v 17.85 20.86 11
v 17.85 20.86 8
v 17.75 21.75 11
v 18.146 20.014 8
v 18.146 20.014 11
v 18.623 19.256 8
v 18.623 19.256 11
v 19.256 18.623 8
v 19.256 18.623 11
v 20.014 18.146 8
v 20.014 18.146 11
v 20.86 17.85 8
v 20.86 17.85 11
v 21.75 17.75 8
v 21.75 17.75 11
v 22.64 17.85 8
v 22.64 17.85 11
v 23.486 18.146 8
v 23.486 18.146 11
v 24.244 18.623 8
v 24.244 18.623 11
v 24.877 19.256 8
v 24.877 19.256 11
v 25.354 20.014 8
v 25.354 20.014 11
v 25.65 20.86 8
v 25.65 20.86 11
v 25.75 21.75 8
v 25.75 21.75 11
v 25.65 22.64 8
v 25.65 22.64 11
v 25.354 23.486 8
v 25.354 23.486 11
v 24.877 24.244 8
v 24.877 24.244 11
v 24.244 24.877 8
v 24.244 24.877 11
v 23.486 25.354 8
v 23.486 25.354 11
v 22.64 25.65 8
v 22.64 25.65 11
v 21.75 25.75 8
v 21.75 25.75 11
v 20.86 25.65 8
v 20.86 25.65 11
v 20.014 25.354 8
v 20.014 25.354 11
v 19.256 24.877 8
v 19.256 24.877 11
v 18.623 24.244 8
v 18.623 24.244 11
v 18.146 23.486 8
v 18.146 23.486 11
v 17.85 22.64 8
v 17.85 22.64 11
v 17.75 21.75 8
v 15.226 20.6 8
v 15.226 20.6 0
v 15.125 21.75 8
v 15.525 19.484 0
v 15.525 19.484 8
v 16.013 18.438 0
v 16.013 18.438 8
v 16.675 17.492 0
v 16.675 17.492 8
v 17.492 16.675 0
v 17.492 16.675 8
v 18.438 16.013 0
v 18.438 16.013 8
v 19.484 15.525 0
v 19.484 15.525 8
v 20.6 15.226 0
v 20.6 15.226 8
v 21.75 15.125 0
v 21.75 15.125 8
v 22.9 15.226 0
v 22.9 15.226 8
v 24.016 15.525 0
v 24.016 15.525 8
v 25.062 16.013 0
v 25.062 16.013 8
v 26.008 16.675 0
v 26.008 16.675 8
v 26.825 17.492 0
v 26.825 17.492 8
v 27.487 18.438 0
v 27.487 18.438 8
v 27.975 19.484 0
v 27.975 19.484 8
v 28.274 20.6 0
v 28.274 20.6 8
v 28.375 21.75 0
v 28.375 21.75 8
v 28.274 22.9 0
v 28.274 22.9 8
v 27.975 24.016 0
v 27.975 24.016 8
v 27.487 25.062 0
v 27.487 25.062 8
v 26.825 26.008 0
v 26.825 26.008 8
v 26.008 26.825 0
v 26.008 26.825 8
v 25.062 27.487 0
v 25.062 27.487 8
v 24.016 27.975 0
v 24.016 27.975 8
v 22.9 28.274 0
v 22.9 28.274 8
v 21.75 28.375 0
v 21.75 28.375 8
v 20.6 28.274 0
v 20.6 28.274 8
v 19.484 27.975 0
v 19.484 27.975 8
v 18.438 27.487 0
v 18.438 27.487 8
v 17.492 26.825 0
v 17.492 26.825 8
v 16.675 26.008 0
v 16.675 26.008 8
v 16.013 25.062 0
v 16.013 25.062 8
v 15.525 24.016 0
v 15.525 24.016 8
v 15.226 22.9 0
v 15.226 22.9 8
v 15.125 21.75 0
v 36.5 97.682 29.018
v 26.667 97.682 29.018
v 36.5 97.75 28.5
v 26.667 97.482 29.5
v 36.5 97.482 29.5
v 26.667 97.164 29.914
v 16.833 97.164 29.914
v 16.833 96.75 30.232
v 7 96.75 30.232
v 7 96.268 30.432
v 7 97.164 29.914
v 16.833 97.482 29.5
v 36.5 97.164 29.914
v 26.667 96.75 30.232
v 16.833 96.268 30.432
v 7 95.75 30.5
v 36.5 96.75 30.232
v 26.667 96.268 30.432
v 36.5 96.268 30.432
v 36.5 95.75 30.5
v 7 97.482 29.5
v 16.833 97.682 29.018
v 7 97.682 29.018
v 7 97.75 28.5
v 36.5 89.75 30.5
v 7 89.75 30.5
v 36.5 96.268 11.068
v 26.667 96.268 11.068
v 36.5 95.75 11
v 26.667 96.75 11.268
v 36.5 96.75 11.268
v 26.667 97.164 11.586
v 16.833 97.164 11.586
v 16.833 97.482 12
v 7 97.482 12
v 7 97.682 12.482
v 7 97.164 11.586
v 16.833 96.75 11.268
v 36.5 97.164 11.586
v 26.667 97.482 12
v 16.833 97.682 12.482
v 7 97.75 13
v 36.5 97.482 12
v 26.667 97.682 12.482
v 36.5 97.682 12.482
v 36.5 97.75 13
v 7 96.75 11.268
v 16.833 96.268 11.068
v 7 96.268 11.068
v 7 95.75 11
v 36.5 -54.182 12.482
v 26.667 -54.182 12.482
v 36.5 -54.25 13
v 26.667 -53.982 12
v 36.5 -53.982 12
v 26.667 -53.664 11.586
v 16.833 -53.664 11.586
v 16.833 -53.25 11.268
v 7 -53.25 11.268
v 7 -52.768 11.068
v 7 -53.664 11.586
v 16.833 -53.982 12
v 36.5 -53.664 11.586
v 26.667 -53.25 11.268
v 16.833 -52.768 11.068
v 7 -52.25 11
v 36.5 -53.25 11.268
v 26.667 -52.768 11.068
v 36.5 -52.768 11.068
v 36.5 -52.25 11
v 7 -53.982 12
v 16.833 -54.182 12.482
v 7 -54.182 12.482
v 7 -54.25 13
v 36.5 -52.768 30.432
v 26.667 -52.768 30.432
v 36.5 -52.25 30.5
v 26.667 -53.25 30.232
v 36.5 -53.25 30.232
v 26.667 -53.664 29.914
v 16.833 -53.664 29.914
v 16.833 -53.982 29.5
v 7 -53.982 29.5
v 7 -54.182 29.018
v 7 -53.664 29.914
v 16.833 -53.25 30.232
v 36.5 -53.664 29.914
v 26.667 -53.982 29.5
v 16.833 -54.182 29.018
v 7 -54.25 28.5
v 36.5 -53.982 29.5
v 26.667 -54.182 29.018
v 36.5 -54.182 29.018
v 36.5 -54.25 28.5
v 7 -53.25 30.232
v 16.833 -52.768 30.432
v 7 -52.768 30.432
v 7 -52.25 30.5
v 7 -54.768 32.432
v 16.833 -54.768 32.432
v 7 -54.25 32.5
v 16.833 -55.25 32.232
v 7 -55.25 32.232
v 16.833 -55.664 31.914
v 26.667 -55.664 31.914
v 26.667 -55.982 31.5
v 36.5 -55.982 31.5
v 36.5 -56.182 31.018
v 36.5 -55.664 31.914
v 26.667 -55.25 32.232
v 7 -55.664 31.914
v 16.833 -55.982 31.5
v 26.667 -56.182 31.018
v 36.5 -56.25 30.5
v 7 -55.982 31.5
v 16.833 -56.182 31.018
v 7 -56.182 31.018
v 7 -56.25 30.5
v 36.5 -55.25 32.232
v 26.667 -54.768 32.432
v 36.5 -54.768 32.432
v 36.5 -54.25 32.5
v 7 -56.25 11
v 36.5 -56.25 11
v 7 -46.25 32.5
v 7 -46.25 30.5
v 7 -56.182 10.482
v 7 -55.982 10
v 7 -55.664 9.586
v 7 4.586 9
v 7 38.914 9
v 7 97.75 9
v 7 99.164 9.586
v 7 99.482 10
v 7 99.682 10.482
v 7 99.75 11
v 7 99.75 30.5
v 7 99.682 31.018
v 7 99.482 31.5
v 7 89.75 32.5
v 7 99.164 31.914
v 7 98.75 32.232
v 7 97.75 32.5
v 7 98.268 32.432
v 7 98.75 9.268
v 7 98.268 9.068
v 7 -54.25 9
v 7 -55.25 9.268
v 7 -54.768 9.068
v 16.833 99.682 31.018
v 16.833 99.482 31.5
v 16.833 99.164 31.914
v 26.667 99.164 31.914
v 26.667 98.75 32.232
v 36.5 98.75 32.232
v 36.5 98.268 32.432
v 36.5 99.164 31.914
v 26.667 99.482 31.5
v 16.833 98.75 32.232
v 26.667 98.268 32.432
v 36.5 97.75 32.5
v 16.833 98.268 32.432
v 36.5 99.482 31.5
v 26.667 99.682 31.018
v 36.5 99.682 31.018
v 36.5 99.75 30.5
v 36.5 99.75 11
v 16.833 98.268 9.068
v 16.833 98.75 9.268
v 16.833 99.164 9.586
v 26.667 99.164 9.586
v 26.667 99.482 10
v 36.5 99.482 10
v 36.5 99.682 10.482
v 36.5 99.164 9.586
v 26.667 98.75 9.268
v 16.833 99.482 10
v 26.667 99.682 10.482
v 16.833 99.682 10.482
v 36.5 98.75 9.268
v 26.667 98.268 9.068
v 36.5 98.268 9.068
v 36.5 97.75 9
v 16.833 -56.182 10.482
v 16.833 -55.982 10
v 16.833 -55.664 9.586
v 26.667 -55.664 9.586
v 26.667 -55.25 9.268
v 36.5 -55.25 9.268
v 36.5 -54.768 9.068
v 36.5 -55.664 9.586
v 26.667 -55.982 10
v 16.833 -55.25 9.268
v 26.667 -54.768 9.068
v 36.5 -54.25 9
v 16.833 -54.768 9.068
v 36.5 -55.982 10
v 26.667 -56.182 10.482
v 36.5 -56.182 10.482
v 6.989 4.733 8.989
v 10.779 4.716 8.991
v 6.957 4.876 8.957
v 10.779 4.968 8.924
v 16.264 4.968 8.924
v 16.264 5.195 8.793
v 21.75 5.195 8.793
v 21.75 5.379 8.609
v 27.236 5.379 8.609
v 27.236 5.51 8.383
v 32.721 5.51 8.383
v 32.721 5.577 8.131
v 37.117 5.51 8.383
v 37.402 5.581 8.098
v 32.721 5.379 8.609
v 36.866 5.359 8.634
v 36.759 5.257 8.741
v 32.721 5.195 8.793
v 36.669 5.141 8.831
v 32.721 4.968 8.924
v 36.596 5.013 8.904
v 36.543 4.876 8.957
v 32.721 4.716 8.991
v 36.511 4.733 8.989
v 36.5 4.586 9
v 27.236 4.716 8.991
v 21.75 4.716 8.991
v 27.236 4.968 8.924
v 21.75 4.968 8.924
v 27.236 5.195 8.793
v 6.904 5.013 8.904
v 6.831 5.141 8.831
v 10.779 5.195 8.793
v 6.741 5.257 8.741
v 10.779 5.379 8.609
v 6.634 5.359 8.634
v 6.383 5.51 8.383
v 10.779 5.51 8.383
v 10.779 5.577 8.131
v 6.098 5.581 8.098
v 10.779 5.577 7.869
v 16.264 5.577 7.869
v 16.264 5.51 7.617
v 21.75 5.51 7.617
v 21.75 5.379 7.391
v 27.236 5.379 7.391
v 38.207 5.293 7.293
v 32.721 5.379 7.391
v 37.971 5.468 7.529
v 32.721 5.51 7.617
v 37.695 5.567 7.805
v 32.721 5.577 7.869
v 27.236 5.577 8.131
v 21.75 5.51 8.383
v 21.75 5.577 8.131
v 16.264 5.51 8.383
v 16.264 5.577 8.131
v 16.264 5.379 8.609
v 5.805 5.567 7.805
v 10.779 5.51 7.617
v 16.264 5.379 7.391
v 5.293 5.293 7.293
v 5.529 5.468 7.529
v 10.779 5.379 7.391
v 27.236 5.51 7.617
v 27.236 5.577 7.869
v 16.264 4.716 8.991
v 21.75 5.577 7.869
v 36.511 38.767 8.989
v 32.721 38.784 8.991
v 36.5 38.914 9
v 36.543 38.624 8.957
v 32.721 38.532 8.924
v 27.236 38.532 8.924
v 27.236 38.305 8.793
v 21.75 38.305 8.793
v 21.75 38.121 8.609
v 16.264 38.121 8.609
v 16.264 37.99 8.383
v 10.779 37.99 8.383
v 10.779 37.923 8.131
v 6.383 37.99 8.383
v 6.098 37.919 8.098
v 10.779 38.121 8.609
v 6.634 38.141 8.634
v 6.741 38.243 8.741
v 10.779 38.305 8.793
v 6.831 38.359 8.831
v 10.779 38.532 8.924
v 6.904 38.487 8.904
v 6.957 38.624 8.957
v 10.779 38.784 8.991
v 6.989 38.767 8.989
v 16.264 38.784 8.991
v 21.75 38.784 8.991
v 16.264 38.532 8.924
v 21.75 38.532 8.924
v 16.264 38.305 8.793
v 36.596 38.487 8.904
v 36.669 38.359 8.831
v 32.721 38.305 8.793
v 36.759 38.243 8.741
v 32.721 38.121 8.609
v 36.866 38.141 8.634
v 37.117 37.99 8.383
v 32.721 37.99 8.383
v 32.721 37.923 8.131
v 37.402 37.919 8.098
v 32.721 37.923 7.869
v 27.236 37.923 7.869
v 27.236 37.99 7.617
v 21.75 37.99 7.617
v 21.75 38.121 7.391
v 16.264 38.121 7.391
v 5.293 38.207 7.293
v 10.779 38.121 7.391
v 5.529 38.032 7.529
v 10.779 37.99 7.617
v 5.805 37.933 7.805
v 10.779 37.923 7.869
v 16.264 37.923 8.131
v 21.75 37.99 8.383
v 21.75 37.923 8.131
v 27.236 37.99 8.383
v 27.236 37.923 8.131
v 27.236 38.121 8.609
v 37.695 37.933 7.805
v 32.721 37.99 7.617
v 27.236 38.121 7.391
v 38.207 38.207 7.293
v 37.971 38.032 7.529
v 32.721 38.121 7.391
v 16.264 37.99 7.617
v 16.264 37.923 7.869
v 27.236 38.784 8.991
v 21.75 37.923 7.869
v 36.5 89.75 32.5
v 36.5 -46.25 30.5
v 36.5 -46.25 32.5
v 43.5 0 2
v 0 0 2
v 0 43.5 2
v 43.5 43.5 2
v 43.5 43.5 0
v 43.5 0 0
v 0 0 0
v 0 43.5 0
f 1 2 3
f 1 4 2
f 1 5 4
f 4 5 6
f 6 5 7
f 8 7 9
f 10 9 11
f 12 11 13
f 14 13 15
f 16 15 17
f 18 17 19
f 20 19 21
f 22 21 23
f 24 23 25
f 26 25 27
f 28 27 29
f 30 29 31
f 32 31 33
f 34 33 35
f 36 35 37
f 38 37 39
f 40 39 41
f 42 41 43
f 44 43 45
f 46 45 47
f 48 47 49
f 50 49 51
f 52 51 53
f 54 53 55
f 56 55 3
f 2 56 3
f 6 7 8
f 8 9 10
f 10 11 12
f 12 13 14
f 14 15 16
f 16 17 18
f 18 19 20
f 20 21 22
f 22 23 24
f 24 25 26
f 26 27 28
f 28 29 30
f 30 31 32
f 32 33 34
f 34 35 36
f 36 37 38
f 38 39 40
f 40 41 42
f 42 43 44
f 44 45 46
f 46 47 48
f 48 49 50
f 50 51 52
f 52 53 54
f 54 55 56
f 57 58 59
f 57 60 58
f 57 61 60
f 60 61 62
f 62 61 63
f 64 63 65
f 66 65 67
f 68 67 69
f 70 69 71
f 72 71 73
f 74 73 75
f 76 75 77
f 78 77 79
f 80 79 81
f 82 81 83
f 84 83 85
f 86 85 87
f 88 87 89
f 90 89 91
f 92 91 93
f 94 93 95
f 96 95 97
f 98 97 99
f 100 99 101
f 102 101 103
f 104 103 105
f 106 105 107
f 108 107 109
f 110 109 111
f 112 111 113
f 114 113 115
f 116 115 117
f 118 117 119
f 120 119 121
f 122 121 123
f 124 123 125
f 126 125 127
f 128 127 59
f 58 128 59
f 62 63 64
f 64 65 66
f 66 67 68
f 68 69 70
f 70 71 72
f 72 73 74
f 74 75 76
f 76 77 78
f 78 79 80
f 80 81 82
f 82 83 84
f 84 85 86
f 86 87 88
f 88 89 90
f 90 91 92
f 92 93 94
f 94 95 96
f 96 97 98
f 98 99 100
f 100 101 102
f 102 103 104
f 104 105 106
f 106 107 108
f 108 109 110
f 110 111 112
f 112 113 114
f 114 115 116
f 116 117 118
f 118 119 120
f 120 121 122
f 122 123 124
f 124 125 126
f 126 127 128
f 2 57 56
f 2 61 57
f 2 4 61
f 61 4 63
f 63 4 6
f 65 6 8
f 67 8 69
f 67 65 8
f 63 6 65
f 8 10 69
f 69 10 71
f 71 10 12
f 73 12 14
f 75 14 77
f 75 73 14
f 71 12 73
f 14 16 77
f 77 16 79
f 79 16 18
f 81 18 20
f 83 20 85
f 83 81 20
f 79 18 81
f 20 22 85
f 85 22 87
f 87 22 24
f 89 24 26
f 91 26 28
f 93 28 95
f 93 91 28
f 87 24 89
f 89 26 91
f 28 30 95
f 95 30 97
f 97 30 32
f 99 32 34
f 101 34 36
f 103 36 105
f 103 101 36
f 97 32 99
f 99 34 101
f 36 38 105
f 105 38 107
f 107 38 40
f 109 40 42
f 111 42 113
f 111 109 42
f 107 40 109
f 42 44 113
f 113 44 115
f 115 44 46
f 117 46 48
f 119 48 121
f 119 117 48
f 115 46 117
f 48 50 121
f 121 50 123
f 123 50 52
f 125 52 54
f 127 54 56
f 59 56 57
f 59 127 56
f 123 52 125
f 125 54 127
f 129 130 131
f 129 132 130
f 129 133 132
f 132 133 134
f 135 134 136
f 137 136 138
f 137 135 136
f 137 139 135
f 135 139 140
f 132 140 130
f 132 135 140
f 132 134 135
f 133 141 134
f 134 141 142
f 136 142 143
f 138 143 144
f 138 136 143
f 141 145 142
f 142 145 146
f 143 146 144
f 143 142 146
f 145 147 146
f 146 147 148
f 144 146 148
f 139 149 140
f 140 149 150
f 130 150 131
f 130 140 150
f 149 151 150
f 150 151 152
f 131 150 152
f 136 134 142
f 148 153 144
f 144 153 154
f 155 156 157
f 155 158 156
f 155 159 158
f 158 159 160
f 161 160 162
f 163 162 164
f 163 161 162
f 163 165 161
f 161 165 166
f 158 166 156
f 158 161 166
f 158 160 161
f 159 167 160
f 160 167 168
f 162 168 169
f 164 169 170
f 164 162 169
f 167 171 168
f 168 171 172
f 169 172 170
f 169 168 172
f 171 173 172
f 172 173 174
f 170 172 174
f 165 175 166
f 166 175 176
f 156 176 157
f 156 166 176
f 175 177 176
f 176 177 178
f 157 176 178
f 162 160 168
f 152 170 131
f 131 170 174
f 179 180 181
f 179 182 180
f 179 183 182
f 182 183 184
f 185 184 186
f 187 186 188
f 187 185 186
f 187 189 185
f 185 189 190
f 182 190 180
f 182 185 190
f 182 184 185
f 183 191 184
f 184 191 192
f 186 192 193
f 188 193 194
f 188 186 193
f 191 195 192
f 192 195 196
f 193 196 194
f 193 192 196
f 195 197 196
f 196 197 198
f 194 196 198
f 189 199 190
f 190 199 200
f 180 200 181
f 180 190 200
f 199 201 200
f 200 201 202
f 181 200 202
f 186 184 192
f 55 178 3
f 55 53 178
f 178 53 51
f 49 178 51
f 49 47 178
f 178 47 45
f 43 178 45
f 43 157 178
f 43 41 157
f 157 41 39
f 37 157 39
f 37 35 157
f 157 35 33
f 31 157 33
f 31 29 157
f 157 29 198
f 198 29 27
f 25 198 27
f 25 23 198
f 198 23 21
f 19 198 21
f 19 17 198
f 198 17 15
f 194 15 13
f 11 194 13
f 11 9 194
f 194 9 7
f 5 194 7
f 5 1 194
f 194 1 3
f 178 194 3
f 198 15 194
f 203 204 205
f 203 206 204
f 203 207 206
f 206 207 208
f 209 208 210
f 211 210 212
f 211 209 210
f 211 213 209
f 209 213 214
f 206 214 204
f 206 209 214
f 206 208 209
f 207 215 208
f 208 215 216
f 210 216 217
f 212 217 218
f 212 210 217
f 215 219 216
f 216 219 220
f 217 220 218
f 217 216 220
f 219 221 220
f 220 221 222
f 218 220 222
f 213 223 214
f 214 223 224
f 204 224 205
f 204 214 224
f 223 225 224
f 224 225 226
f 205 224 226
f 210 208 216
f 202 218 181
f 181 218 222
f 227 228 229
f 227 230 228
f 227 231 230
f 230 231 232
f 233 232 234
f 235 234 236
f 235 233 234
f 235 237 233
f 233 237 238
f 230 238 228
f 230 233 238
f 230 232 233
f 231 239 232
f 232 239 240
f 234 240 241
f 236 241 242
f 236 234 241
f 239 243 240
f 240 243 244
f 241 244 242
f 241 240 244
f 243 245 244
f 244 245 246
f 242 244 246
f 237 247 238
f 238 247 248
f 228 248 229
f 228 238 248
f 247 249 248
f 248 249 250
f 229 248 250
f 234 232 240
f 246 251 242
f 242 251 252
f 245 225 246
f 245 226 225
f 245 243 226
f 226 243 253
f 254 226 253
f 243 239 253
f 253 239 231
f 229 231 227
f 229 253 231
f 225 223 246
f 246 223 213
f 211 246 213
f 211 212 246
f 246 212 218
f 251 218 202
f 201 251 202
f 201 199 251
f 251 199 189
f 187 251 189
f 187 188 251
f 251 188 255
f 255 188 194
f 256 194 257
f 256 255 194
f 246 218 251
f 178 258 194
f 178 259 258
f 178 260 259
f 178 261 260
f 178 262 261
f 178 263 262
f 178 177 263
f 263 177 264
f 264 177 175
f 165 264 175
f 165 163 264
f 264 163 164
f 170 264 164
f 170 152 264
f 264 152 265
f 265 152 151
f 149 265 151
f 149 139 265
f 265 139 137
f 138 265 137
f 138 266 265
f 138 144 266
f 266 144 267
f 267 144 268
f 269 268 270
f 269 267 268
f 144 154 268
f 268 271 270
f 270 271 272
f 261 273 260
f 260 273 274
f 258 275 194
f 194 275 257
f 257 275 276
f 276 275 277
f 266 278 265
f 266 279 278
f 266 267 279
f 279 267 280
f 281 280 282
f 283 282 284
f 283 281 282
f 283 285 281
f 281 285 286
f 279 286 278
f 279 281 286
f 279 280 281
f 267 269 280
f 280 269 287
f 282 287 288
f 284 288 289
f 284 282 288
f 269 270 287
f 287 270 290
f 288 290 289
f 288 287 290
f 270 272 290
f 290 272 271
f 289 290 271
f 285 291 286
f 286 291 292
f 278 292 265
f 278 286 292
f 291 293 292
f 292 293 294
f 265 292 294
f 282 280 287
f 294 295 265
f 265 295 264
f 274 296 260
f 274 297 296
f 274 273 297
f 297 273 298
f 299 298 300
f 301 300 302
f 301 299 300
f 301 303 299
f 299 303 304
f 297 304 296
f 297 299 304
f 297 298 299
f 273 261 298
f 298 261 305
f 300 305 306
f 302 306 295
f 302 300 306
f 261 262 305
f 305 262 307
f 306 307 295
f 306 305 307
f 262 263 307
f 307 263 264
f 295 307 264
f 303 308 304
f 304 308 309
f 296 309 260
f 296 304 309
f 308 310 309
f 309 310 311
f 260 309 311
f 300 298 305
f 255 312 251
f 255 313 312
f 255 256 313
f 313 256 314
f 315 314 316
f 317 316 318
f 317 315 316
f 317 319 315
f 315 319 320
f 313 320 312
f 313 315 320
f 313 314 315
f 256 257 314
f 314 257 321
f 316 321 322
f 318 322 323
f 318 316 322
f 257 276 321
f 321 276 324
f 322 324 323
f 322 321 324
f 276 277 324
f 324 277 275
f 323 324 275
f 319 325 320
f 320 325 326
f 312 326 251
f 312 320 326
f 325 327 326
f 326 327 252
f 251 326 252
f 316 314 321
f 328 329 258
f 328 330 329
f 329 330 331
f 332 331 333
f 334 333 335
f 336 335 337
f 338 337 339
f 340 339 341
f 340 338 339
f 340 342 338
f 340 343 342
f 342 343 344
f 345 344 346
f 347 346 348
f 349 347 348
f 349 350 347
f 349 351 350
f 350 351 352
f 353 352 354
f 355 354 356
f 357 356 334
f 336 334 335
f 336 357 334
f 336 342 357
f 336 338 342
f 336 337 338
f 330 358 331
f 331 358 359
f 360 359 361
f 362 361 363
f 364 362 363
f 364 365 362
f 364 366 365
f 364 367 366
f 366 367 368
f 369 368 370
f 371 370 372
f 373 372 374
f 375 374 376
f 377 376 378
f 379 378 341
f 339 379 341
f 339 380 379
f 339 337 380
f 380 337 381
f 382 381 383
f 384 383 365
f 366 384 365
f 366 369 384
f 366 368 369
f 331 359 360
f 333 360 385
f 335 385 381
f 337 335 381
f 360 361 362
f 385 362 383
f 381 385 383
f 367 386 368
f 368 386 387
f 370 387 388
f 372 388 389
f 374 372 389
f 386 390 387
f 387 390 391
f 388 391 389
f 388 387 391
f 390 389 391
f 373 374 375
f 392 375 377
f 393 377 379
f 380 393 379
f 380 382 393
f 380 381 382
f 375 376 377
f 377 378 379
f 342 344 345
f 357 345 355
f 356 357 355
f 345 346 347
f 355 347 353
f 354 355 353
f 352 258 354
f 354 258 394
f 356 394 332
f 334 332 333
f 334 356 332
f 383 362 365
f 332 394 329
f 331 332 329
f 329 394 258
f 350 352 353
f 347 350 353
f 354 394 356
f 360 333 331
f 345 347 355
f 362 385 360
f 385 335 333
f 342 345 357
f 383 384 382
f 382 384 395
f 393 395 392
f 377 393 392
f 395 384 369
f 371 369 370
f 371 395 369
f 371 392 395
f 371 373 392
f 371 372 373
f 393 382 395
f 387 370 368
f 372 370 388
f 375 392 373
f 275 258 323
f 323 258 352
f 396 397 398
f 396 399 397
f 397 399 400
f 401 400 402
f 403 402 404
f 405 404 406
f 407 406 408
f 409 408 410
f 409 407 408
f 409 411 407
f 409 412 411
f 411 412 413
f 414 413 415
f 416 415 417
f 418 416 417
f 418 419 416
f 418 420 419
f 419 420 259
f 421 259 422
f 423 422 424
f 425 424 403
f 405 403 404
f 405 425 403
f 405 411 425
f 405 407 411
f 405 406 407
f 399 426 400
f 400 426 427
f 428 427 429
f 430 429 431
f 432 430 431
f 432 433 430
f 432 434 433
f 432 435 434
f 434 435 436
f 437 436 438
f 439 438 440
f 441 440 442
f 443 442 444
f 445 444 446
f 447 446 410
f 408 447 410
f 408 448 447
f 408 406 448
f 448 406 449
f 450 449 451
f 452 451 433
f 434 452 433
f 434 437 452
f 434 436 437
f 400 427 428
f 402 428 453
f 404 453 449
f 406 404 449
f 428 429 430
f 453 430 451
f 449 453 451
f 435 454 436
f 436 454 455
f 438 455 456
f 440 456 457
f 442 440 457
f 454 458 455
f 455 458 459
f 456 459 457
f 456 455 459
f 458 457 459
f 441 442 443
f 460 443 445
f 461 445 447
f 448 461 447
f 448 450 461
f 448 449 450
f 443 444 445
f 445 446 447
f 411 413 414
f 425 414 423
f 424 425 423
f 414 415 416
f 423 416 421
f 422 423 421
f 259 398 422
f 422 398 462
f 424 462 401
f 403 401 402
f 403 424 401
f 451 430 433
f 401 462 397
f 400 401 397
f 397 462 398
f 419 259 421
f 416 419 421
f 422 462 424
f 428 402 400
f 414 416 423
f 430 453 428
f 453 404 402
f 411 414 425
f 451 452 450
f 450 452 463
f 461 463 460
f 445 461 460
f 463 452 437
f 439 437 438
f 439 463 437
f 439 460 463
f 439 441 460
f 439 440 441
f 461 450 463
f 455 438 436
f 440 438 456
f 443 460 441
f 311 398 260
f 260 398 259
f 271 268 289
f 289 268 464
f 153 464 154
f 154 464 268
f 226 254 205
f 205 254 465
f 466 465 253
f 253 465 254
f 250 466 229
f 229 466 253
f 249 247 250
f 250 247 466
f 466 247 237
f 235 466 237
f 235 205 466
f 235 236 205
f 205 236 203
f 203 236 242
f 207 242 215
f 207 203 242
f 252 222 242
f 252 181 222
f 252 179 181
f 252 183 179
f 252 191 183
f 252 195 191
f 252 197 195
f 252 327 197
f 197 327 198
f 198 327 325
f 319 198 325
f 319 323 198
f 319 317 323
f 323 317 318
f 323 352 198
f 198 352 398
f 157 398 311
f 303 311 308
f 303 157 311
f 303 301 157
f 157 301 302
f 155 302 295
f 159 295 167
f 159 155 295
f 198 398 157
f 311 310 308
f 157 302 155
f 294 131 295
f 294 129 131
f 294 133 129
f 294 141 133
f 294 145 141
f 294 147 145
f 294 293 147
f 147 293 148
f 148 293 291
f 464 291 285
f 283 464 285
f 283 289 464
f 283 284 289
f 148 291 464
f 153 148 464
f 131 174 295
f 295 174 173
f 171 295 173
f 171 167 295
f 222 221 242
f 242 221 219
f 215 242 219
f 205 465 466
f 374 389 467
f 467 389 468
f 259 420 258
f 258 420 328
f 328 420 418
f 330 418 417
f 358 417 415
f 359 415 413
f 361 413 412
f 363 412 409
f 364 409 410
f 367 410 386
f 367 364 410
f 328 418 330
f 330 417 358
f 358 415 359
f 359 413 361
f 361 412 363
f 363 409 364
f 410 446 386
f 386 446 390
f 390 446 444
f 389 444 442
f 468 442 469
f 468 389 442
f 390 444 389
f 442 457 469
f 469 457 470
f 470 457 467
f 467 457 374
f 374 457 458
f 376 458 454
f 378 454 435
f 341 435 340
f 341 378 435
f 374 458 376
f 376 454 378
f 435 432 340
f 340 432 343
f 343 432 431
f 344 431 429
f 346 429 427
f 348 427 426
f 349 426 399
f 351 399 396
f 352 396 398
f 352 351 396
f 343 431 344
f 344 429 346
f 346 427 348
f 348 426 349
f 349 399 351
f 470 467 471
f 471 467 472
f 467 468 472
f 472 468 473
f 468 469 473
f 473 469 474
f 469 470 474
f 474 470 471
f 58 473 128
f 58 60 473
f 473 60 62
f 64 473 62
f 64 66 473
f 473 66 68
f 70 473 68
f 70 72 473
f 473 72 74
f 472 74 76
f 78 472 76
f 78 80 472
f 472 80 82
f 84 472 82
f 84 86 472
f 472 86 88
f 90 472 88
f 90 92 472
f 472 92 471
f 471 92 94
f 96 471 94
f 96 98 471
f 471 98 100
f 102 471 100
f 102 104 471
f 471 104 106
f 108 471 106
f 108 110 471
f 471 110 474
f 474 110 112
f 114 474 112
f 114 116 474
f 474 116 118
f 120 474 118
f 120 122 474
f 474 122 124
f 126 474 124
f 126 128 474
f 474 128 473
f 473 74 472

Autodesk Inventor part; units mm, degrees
ref_plane "YZ Plane" through (0, 0, 0) normal (1, 0, 0) x (0, 1, 0)
ref_plane "XZ Plane" through (0, 0, 0) normal (0, 1, 0) x (-1, 0, 0)
ref_plane "XY Plane" through (0, 0, 0) normal (0, 0, 1) x (1, 0, 0)
sketch "Sketch1" plane through (0, 0, 0) normal (0, 0, 1) x (1, 0, 0)
  line L0 (0, 0) -> (43.5, 0)
  line L1 (43.5, 0) -> (43.5, 43.5)
  line L2 (43.5, 43.5) -> (0, 43.5)
  line L3 (0, 43.5) -> (0, 0)
  dimension "d0" = 43.5
  dimension "d1" = 43.5
extrude "Extrusion1" add sketch "Sketch1" along normal blind 9
chamfer "Chamfer1" distance 7 angle 45 4 edges at (21.75, 43.5, 9) (0, 21.75, 9) (21.75, 0, 9) (43.5, 21.75, 9)
sketch "Sketch2" plane through (0, 0, 9) normal (0, 0, 1) x (1, 0, 0)
  line L0 (7, 7) -> (36.5, 7)
  line L1 (36.5, 7) -> (36.5, 36.5)
  line L2 (36.5, 36.5) -> (7, 36.5)
  line L3 (7, 36.5) -> (7, 7)
  point P0 (0, 0)
extrude "Extrusion2" add sketch "Sketch2" along normal blind 2
sketch "Sketch3" plane through (36.5, 7, 9) normal (1, 0, 0) x (0, 0, -1)
  line L0 (0, 0) -> (0, 29.5) projected
  line L1 (-2, 90.75) -> (-2, -61.25)
  line L2 (-23.5, -63.25) -> (-23.5, -53.25)
  line L3 (-23.5, -53.25) -> (-21.5, -53.25)
  line L4 (-21.5, -53.25) -> (-21.5, -61.25)
  line L5 (-21.5, -61.25) -> (-2, -61.25)
  line L6 (-23.5, 92.75) -> (-23.5, 82.75)
  line L7 (-23.5, 82.75) -> (-21.5, 82.75)
  line L8 (-21.5, 82.75) -> (-21.5, 90.75)
  line L9 (-21.5, 90.75) -> (-2, 90.75)
  line L10 (-23.5, -63.25) -> (0, -63.25)
  line L11 (0, -63.25) -> (0, 92.75)
  line L12 (-23.5, 92.75) -> (0, 92.75)
  line L13 (9, -7) -> (9, 36.5) projected
  dimension "d15" = 10
  dimension "d16" = 2
  dimension "d17" = 8
  dimension "d21" = 156
  dimension "d22" = 23.5
  dimension "d23" = 19.5
  dimension "d24" = 2
  dimension "d27" = 9
  dimension "d28" = 63.25
extrude "Extrusion3" add sketch "Sketch3" against normal blind 29.5
fillet "Fillet1" radius 1 2 edges at (21.75, 36.5, 9) (21.75, 7, 9)
fillet "Fillet2" radius 2 8 edges at (21.75, -56.25, 9) (21.75, 99.75, 9) (21.75, 99.75, 32.5) (21.75, -56.25, 32.5) (21.75, -54.25, 30.5) (21.75, -54.25, 11) (21.75, 97.75, 11) (21.75, 97.75, 30.5)
sketch "Sketch4" plane through (0, 0, 0) normal (0, 0, -1) x (-1, 0, 0)
  line L0 (0, 0) -> (-43.5, 43.5) construction
  line L1 (-38.2071, 38.2071) -> (-43.5, 43.5) construction
  line L2 (-43.5, 43.5) -> (-43.5, 0) construction
  line L3 (-43.5, 0) -> (0, 43.5) construction
  circle A0 centre (-21.75, 21.75) radius 6.625
  dimension "d33" = 13.25
extrude "Extrusion4" cut sketch "Sketch4" against normal blind 8
sketch "Sketch5" plane through (21.75, 21.75, 8) normal (0, 0, -1) x (-1, 0, 0)
  circle A0 centre (0, 0) radius 4
  point P0 (21.75, -21.75)
  dimension "d36" = 8
extrude "Extrusion5" cut sketch "Sketch5" against normal blind 44.75
properties part number "Tripod"
